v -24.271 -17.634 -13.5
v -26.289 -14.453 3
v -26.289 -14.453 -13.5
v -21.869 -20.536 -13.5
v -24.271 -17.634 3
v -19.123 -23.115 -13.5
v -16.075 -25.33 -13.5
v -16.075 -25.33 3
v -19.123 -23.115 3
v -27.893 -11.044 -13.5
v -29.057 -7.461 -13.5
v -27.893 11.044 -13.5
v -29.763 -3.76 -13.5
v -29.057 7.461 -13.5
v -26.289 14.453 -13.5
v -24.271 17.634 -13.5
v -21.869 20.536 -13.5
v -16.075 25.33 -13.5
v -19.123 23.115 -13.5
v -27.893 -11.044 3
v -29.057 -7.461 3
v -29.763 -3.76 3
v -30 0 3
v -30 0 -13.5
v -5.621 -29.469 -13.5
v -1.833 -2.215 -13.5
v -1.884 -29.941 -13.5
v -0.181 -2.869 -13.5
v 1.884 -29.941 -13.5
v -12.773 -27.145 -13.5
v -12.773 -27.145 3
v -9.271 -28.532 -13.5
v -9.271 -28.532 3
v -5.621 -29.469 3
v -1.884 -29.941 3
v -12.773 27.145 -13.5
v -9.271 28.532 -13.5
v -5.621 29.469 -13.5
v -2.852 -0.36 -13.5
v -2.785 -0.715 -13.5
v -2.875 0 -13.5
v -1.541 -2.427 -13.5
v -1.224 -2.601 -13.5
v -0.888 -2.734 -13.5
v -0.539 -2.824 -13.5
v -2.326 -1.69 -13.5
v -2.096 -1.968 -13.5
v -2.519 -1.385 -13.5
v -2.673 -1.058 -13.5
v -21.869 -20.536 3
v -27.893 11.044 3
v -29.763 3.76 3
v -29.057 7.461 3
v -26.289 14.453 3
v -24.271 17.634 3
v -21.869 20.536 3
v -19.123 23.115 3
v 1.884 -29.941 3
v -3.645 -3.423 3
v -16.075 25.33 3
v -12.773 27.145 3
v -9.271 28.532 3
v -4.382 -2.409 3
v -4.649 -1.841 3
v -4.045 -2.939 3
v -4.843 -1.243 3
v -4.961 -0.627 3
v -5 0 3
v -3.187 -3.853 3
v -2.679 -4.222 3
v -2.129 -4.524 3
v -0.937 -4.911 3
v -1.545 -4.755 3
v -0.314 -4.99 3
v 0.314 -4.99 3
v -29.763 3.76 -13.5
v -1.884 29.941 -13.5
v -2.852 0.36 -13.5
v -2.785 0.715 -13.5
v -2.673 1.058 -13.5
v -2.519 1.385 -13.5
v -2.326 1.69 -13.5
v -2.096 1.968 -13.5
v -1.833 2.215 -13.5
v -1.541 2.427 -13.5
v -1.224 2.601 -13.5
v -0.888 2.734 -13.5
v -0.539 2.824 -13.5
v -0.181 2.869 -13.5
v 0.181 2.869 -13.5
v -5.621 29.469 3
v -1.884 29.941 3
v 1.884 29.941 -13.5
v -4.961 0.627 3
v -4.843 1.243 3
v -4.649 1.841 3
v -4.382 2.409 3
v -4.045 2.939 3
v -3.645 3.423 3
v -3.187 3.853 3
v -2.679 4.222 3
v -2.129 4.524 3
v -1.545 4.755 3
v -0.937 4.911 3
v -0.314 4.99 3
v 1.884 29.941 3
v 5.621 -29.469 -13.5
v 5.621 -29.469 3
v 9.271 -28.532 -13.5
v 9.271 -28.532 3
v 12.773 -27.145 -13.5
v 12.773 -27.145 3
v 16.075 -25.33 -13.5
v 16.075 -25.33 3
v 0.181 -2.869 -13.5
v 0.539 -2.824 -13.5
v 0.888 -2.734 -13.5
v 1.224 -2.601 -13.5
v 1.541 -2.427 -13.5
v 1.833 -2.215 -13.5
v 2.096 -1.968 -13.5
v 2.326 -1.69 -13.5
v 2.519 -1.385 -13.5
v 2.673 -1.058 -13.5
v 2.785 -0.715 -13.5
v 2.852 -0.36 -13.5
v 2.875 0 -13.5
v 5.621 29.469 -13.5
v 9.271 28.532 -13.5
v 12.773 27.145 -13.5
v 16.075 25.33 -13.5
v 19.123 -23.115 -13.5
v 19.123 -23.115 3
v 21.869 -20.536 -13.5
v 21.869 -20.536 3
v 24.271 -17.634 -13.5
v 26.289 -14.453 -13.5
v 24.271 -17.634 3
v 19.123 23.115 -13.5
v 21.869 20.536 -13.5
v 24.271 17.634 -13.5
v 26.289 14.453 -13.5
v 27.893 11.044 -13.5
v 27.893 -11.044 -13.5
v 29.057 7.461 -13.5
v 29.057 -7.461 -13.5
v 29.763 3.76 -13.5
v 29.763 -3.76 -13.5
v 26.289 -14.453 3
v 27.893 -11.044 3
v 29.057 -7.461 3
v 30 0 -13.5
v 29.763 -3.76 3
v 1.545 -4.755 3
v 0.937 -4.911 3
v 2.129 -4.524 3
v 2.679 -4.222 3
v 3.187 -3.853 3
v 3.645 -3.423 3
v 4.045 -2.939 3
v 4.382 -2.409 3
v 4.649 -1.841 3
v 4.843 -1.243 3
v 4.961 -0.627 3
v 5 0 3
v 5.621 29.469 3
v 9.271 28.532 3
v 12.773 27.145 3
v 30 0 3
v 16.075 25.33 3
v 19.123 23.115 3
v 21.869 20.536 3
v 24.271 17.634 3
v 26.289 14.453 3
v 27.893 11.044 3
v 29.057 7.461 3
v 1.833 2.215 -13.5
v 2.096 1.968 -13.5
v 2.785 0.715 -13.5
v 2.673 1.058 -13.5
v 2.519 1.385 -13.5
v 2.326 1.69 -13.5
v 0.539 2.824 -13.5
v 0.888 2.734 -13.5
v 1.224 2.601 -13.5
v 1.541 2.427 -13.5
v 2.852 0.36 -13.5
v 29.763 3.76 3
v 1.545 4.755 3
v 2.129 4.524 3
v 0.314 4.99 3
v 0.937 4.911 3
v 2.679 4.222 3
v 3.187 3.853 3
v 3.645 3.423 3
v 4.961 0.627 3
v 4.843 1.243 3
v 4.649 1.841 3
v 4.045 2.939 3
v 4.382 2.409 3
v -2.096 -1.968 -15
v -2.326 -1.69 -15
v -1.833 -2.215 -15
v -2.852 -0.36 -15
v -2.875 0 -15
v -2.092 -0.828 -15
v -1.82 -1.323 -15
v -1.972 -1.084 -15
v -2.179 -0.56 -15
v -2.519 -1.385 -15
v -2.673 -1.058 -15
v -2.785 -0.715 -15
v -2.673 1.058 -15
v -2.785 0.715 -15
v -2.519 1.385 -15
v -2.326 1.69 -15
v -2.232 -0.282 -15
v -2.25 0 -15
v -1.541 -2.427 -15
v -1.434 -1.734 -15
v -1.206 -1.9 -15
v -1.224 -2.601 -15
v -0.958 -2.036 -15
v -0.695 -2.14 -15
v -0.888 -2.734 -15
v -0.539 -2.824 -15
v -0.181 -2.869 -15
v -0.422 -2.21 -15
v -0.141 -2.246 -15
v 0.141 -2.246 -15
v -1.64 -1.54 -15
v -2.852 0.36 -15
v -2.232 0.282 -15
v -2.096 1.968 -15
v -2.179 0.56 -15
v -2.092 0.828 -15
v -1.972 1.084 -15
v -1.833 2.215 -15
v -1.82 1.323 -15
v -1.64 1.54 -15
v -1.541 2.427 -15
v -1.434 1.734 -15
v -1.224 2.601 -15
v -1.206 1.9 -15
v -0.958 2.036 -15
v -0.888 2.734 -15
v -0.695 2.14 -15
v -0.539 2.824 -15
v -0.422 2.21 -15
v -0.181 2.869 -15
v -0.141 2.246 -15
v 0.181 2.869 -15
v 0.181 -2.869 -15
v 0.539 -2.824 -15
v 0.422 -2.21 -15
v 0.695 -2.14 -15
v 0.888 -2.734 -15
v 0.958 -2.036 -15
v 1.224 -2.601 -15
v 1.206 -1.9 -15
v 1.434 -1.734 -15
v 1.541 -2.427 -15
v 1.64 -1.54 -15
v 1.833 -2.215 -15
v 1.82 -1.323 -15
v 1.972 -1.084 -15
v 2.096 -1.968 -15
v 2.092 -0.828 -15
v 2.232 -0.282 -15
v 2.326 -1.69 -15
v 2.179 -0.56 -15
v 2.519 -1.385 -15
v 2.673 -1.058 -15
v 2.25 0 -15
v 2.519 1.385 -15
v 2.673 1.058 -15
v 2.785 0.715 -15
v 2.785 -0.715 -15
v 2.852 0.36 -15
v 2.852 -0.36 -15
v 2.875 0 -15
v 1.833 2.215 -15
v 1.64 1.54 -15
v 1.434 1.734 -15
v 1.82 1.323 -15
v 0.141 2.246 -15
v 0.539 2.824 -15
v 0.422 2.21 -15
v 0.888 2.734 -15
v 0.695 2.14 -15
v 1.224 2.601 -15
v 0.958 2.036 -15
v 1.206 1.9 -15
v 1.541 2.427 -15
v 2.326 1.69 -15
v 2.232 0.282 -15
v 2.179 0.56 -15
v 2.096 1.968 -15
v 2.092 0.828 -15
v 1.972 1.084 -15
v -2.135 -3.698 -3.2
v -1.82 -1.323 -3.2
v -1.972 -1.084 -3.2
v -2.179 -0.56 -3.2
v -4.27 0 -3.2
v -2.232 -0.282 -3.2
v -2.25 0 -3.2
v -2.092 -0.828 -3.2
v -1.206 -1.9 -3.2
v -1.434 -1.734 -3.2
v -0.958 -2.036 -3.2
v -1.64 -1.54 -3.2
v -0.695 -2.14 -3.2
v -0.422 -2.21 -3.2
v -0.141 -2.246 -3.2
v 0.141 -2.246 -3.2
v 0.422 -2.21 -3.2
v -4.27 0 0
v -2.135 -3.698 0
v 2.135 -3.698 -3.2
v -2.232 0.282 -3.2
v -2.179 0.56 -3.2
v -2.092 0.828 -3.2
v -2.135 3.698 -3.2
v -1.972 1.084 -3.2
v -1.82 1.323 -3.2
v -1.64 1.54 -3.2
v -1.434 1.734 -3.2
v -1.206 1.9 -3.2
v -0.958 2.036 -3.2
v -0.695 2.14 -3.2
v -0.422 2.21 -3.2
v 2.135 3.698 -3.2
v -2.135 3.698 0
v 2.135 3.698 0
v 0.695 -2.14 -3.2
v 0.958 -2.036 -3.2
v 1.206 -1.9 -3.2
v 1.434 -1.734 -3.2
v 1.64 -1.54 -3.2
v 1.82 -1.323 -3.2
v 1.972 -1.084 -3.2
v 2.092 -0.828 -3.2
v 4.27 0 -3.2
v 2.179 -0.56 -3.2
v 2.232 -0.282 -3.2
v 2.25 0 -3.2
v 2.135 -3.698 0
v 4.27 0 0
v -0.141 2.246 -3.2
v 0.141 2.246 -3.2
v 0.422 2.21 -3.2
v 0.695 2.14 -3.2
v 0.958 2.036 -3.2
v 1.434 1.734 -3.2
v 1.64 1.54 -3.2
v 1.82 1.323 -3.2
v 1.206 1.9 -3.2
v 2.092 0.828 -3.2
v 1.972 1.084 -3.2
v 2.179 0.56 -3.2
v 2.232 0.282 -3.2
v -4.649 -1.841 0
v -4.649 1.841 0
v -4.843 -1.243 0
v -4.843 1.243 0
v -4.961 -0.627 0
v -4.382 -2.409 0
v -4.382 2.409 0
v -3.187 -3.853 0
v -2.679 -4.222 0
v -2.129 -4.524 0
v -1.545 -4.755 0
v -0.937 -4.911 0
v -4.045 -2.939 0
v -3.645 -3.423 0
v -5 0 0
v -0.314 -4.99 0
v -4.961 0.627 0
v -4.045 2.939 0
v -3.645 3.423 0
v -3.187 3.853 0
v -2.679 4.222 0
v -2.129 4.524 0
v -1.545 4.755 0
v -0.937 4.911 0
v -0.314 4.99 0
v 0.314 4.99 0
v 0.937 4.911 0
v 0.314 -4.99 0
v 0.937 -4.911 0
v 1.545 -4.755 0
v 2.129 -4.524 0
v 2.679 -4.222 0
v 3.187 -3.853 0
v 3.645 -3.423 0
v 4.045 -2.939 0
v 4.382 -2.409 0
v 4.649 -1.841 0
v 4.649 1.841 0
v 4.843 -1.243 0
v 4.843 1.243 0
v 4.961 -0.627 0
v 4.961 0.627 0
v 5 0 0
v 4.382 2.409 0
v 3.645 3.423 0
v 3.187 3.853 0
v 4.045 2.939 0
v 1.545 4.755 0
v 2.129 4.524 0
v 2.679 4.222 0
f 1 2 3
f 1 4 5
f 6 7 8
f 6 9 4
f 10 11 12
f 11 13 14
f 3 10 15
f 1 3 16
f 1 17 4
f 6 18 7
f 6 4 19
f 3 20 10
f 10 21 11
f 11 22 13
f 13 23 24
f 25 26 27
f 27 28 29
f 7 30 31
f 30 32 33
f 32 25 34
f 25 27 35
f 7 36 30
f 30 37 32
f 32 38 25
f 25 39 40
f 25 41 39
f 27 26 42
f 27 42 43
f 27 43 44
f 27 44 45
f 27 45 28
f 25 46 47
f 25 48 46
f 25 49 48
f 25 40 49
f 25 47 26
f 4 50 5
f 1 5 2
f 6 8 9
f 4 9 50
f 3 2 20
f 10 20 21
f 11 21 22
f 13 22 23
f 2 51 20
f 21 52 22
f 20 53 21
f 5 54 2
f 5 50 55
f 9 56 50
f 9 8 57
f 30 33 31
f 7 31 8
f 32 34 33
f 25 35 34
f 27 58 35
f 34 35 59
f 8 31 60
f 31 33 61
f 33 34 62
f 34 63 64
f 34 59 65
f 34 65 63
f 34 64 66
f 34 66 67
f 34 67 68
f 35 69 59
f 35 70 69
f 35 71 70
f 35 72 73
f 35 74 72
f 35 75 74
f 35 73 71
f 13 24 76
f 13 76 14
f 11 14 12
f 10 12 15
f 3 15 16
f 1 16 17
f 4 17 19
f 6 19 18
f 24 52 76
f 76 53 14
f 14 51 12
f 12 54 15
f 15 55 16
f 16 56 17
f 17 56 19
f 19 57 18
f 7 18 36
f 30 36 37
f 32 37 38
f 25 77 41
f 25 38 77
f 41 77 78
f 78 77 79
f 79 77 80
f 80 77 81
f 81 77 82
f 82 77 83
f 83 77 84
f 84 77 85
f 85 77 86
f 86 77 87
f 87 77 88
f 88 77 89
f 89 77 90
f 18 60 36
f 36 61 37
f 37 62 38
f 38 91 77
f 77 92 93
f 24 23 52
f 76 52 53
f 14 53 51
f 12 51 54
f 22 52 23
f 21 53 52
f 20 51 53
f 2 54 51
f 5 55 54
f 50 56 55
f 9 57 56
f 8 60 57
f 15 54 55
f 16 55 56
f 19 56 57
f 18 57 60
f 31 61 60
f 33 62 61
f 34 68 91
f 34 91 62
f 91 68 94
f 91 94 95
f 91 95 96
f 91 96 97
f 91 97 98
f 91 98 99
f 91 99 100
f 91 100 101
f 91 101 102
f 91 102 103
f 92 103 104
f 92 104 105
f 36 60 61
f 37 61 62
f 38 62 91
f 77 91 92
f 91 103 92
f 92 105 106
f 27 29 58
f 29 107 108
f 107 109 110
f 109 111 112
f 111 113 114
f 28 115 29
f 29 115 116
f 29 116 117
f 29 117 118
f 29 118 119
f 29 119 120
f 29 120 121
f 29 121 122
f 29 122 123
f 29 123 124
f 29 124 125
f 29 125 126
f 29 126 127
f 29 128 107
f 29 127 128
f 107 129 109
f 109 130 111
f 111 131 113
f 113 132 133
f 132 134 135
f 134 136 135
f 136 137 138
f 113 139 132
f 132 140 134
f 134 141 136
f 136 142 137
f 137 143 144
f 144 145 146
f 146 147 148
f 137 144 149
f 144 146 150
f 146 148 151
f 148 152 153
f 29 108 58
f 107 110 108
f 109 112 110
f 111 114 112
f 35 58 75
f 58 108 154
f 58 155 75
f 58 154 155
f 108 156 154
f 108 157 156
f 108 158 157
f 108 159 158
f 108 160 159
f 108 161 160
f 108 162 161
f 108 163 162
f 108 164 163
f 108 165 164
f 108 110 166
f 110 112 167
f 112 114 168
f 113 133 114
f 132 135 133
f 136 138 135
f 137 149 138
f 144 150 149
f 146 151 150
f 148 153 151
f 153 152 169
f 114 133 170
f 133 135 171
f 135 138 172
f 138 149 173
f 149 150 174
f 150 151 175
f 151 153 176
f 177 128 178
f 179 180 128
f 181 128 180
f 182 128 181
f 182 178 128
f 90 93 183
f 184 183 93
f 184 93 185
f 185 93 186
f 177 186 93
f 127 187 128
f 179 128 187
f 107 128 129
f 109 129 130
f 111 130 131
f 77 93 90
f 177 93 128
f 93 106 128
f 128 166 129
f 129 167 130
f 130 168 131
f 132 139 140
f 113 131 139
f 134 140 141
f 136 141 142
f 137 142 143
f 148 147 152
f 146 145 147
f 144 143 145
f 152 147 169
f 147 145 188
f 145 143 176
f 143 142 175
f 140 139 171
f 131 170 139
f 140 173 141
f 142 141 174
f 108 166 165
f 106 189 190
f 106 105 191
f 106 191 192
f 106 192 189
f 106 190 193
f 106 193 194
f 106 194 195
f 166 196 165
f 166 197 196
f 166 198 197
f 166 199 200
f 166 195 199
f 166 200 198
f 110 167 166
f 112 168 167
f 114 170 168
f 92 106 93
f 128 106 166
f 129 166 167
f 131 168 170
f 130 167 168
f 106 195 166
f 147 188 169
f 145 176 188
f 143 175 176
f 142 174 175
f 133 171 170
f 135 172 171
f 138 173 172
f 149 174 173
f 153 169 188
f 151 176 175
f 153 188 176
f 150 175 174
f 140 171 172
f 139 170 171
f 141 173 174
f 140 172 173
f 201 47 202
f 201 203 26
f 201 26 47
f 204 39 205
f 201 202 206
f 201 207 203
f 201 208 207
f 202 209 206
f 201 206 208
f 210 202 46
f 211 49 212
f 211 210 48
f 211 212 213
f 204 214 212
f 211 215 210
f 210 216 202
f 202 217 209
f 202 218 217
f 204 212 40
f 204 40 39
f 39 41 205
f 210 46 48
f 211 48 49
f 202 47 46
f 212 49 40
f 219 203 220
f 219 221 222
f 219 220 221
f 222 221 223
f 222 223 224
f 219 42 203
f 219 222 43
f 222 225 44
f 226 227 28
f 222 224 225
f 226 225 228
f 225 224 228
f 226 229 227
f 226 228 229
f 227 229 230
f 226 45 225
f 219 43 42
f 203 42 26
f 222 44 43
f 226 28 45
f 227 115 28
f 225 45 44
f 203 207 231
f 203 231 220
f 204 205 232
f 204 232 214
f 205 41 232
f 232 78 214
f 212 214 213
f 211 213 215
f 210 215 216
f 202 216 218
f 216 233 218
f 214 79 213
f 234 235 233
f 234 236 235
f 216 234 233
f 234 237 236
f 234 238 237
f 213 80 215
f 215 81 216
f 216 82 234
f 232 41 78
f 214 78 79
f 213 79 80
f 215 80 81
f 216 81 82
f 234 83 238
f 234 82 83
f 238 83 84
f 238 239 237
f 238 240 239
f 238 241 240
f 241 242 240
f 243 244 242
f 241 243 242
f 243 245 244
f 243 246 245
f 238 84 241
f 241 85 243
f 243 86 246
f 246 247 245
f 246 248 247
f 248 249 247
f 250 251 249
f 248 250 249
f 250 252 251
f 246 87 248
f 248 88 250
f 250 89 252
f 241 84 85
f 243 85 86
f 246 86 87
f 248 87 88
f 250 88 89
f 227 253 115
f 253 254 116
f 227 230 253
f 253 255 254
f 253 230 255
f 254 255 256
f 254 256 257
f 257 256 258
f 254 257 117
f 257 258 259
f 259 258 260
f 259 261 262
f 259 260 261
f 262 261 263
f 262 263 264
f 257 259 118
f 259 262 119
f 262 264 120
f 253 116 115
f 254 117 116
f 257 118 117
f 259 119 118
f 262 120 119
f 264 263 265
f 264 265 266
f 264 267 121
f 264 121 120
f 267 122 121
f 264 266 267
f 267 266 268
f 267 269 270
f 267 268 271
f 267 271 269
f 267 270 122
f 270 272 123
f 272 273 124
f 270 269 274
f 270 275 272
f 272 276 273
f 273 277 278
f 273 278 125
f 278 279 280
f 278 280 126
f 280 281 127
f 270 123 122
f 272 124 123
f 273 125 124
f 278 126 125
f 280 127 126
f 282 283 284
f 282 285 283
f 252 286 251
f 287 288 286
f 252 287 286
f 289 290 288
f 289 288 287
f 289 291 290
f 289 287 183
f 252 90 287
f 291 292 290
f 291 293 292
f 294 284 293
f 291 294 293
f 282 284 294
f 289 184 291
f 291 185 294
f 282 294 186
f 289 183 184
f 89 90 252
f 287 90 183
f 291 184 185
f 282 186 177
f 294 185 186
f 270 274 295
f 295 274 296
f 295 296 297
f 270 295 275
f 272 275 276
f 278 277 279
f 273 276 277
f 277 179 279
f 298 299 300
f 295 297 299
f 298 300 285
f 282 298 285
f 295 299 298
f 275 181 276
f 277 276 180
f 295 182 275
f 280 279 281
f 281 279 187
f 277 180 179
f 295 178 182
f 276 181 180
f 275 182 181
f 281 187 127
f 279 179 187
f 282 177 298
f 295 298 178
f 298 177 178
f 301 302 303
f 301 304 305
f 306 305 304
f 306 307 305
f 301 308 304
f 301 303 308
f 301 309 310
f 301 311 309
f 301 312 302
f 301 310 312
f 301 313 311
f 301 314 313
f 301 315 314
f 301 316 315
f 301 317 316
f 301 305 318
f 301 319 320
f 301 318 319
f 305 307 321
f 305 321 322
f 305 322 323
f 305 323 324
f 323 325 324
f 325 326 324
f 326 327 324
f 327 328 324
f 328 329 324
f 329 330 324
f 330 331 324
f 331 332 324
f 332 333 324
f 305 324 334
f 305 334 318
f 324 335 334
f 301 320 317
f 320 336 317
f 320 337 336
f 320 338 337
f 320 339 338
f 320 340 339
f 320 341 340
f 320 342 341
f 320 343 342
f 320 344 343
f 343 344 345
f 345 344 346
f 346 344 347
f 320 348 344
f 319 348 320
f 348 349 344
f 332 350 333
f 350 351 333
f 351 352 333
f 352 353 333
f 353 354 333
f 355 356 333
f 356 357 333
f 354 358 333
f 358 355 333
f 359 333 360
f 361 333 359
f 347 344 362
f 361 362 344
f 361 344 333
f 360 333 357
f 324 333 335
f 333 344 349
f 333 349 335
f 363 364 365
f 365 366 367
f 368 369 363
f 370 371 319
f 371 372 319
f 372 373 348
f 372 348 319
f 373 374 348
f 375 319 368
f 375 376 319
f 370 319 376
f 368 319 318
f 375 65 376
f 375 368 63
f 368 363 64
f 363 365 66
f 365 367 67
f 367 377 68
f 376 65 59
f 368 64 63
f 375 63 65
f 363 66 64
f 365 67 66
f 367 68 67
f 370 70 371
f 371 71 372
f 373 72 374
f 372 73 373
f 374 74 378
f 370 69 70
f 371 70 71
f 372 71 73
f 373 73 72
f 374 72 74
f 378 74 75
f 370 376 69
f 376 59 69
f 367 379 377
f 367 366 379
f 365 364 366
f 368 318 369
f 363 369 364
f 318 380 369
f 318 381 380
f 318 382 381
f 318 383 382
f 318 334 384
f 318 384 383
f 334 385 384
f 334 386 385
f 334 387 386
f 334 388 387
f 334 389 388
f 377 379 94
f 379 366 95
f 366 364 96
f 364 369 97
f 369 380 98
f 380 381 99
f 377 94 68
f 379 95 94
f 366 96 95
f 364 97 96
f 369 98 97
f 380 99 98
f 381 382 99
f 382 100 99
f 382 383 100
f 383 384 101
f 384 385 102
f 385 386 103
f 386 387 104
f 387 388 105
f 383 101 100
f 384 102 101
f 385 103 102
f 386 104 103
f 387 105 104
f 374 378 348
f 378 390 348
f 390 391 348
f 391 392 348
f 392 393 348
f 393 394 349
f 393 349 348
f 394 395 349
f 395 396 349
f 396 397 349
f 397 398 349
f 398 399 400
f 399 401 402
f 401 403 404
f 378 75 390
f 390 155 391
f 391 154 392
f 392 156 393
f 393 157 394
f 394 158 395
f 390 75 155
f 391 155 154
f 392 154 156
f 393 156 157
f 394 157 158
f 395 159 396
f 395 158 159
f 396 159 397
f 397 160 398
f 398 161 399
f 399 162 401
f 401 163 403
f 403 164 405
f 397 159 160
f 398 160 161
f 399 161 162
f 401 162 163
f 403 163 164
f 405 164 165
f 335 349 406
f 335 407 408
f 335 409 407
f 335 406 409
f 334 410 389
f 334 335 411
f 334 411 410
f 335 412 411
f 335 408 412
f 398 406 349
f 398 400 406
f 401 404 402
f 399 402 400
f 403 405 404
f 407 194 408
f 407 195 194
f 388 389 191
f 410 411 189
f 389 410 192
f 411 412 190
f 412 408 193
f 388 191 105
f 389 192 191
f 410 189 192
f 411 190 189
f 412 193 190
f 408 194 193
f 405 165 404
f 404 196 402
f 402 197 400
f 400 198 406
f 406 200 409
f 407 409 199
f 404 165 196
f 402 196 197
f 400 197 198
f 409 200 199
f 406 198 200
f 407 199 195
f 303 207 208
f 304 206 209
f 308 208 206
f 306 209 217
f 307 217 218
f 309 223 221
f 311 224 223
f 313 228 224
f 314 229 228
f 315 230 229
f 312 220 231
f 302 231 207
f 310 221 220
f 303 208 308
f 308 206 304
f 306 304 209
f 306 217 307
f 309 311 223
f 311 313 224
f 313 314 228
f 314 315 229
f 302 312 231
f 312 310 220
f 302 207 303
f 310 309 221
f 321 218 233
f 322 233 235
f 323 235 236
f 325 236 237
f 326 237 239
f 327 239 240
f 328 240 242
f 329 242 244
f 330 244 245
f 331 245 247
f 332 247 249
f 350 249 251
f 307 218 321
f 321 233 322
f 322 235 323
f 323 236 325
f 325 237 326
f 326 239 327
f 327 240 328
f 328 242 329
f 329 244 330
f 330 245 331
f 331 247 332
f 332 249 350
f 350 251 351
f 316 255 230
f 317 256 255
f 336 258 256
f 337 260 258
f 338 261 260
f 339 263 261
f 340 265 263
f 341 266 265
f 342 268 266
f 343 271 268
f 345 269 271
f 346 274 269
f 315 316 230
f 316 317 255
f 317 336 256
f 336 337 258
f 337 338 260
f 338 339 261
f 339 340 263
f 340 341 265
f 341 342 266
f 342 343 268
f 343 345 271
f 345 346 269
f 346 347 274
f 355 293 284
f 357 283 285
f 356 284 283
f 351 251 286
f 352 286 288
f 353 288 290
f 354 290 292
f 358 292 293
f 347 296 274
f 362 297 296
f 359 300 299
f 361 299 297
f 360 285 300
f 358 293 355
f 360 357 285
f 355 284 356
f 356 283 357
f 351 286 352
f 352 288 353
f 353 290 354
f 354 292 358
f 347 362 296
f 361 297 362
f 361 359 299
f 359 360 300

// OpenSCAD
$fn = 50;


difference() {
	union() {
		translate(v = [0, 0, -13.5000000000]) {
			cylinder(h = 16.5000000000, r = 30.0000000000);
		}
		#translate(v = [0, 0, -15.0000000000]) {
			cylinder(h = 15, r = 2.8750000000);
		}
	}
	union() {
		translate(v = [0, 0, 0]) {
			rotate(a = [0, 0, 0]) {
				difference() {
					union() {
						translate(v = [0, 0, -3.2000000000]) {
							linear_extrude(height = 3.2000000000) {
								polygon(points = [[4.2698000000, 0.0000000000], [2.1349000000, 3.6977552691], [-2.1349000000, 3.6977552691], [-4.2698000000, 0.0000000000], [-2.1349000000, -3.6977552691], [2.1349000000, -3.6977552691]]);
							}
						}
					}
					union();
				}
			}
		}
		#cylinder(h = 3, r = 5.0000000000);
		#translate(v = [0, 0, -100.0000000000]) {
			cylinder(h = 200, r = 2.2500000000);
		}
	}
}
